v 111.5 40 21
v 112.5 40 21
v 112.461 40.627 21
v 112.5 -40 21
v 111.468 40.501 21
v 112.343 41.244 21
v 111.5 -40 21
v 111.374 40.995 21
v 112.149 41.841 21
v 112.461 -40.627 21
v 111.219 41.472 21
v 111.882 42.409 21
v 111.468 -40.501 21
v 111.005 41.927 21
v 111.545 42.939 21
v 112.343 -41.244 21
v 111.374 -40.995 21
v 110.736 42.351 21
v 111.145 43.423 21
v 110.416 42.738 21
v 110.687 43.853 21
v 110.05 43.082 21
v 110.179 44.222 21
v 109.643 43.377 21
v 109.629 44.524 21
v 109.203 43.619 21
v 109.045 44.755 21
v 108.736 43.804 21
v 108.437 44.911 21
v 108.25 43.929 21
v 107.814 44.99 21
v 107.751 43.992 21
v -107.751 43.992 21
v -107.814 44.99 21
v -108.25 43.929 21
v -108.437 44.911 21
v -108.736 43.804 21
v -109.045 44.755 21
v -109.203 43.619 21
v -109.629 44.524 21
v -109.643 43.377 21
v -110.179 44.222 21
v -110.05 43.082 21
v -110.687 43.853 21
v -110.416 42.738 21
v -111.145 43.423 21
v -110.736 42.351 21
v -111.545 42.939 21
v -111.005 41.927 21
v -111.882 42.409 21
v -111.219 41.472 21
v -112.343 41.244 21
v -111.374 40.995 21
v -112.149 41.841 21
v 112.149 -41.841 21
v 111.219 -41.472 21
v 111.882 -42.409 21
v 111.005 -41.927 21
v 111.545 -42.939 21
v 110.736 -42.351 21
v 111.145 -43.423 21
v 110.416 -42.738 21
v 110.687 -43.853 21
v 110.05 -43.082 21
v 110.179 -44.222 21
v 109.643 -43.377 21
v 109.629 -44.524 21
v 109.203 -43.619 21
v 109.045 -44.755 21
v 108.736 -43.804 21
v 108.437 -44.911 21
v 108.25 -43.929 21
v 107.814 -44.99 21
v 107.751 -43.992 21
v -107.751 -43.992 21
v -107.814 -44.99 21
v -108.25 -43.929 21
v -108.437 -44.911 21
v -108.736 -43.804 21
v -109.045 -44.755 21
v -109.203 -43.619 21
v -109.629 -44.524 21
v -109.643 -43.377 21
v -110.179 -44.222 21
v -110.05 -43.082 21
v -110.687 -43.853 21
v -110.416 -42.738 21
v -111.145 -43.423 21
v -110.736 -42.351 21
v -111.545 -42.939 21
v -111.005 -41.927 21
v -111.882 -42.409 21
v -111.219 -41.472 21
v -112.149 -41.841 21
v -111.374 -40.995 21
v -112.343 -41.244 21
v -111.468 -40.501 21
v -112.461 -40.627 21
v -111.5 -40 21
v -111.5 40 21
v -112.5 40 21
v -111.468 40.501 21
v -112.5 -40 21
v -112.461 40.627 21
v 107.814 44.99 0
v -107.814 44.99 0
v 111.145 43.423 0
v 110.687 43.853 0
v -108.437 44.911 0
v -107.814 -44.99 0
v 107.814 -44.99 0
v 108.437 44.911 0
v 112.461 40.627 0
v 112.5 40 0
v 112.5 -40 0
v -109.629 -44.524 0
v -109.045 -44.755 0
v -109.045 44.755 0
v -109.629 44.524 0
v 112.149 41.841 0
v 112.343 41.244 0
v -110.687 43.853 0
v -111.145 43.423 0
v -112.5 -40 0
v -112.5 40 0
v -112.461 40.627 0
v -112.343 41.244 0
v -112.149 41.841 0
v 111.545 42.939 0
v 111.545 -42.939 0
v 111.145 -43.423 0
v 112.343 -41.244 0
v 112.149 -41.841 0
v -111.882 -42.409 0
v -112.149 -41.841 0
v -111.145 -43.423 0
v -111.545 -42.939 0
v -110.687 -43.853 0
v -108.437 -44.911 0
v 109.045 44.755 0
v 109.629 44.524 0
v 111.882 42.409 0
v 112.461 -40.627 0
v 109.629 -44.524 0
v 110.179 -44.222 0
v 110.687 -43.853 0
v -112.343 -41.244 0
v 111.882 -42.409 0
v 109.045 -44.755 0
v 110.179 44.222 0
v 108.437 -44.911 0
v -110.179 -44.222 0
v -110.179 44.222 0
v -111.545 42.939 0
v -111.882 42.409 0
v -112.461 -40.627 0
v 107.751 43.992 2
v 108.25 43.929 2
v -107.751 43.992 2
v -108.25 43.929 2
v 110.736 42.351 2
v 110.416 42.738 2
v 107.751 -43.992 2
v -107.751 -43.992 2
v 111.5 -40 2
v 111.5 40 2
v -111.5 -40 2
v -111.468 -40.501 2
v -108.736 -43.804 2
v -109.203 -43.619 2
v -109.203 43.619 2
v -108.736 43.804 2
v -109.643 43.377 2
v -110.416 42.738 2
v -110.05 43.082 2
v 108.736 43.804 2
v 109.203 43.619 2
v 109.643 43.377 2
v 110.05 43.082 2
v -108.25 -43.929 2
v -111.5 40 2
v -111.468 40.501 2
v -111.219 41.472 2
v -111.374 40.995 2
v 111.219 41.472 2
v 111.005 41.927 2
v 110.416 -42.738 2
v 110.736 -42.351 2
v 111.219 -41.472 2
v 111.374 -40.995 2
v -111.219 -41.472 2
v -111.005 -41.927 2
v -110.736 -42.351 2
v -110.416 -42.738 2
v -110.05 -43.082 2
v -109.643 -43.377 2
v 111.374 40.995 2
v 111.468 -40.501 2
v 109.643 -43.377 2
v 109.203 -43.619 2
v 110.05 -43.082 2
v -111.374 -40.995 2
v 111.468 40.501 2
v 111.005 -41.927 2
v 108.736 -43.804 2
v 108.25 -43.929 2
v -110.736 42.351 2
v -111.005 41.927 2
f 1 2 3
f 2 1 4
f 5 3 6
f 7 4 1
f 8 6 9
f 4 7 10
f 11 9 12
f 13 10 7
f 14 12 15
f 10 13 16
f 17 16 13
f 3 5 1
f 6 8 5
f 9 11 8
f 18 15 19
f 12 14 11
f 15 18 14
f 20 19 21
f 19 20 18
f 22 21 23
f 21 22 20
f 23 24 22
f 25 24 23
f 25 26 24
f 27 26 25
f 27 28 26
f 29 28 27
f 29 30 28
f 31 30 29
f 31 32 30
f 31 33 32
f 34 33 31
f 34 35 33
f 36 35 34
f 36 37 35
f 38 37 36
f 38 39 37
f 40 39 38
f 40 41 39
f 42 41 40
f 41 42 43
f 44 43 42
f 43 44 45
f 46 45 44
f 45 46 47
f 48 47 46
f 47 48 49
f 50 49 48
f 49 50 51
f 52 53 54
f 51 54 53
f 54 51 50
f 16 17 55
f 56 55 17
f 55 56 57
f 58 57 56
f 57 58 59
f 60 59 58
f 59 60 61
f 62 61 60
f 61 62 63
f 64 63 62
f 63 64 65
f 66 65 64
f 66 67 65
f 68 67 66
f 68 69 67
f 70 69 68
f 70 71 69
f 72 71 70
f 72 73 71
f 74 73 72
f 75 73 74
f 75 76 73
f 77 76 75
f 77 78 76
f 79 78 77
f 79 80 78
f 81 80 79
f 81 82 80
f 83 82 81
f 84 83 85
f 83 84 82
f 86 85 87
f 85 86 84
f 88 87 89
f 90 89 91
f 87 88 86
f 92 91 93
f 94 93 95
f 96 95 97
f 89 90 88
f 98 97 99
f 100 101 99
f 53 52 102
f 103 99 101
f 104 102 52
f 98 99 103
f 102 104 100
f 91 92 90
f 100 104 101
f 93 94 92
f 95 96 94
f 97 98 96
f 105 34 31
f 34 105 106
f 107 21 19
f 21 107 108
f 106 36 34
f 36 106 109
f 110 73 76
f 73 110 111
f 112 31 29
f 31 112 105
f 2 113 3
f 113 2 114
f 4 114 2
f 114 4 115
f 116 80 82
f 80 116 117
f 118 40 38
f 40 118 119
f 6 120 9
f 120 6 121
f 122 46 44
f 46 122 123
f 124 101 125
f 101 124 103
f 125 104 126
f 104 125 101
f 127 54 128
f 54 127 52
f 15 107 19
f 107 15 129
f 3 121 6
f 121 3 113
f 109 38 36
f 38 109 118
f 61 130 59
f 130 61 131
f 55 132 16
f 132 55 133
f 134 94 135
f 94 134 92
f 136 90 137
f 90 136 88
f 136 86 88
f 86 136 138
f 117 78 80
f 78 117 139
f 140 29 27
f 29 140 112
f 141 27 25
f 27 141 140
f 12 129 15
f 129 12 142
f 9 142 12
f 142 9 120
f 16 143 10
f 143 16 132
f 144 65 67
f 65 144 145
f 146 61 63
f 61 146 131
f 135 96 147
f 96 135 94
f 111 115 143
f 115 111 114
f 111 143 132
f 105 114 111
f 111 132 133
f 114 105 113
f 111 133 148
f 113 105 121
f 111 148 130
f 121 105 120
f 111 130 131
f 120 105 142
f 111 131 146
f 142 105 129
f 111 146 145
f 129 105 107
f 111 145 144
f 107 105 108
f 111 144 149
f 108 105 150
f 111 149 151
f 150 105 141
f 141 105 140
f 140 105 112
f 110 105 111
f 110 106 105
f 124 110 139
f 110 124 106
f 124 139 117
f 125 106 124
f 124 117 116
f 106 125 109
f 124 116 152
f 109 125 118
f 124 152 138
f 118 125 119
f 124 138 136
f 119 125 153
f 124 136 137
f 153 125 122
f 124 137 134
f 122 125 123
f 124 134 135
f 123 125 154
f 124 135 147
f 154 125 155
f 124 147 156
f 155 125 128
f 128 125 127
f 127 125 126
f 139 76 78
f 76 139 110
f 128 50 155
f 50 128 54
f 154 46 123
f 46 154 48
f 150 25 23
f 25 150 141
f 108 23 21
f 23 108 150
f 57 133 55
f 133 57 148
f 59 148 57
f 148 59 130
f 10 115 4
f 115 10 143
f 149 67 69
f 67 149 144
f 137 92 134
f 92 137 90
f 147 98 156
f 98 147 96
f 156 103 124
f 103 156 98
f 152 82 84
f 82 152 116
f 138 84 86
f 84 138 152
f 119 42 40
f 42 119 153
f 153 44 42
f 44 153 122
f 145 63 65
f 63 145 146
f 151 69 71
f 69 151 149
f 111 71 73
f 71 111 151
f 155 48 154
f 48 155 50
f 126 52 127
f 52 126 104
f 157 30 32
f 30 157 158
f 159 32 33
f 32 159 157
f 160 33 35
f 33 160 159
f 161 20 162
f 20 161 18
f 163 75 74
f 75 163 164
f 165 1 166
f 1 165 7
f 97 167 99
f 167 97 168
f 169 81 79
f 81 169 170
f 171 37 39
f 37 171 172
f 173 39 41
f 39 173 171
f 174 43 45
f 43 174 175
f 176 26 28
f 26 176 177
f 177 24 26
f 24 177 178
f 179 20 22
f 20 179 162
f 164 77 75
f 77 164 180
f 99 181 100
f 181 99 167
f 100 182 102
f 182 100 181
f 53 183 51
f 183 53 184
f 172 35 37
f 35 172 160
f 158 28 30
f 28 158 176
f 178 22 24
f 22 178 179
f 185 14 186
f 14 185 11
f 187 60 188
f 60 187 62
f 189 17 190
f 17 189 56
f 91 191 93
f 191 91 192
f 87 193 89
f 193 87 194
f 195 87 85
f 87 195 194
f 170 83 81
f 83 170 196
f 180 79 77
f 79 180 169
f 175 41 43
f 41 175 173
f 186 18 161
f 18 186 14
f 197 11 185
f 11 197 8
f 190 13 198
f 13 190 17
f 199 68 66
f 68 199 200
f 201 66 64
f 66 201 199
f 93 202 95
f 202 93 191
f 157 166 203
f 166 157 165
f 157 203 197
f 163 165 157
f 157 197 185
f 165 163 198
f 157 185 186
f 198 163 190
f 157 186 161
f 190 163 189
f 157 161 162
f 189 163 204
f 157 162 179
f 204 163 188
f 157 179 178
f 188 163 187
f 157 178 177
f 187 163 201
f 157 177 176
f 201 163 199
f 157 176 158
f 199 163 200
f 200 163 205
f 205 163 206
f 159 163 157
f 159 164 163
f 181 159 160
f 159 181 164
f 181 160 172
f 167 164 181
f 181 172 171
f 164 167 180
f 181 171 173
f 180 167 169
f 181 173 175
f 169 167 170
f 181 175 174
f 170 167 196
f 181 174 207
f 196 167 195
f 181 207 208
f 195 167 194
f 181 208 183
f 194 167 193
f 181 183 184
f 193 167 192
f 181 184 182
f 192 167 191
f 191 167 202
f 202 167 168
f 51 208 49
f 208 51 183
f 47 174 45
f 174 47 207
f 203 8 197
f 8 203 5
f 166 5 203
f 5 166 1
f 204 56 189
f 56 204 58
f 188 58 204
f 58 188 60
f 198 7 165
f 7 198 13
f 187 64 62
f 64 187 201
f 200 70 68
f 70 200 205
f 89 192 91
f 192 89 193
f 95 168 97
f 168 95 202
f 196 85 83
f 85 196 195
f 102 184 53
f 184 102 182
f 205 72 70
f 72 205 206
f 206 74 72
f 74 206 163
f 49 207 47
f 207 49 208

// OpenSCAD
$fn = 50;


difference() {
	union() {
		hull() {
			translate(v = [-107.5000000000, 40.0000000000, 0]) {
				cylinder(h = 21, r = 5);
			}
			translate(v = [107.5000000000, 40.0000000000, 0]) {
				cylinder(h = 21, r = 5);
			}
			translate(v = [-107.5000000000, -40.0000000000, 0]) {
				cylinder(h = 21, r = 5);
			}
			translate(v = [107.5000000000, -40.0000000000, 0]) {
				cylinder(h = 21, r = 5);
			}
		}
	}
	union() {
		translate(v = [0, 0, 2]) {
			hull() {
				translate(v = [-107.5000000000, 40.0000000000, 0]) {
					cylinder(h = 19, r = 4);
				}
				translate(v = [107.5000000000, 40.0000000000, 0]) {
					cylinder(h = 19, r = 4);
				}
				translate(v = [-107.5000000000, -40.0000000000, 0]) {
					cylinder(h = 19, r = 4);
				}
				translate(v = [107.5000000000, -40.0000000000, 0]) {
					cylinder(h = 19, r = 4);
				}
			}
		}
	}
}
